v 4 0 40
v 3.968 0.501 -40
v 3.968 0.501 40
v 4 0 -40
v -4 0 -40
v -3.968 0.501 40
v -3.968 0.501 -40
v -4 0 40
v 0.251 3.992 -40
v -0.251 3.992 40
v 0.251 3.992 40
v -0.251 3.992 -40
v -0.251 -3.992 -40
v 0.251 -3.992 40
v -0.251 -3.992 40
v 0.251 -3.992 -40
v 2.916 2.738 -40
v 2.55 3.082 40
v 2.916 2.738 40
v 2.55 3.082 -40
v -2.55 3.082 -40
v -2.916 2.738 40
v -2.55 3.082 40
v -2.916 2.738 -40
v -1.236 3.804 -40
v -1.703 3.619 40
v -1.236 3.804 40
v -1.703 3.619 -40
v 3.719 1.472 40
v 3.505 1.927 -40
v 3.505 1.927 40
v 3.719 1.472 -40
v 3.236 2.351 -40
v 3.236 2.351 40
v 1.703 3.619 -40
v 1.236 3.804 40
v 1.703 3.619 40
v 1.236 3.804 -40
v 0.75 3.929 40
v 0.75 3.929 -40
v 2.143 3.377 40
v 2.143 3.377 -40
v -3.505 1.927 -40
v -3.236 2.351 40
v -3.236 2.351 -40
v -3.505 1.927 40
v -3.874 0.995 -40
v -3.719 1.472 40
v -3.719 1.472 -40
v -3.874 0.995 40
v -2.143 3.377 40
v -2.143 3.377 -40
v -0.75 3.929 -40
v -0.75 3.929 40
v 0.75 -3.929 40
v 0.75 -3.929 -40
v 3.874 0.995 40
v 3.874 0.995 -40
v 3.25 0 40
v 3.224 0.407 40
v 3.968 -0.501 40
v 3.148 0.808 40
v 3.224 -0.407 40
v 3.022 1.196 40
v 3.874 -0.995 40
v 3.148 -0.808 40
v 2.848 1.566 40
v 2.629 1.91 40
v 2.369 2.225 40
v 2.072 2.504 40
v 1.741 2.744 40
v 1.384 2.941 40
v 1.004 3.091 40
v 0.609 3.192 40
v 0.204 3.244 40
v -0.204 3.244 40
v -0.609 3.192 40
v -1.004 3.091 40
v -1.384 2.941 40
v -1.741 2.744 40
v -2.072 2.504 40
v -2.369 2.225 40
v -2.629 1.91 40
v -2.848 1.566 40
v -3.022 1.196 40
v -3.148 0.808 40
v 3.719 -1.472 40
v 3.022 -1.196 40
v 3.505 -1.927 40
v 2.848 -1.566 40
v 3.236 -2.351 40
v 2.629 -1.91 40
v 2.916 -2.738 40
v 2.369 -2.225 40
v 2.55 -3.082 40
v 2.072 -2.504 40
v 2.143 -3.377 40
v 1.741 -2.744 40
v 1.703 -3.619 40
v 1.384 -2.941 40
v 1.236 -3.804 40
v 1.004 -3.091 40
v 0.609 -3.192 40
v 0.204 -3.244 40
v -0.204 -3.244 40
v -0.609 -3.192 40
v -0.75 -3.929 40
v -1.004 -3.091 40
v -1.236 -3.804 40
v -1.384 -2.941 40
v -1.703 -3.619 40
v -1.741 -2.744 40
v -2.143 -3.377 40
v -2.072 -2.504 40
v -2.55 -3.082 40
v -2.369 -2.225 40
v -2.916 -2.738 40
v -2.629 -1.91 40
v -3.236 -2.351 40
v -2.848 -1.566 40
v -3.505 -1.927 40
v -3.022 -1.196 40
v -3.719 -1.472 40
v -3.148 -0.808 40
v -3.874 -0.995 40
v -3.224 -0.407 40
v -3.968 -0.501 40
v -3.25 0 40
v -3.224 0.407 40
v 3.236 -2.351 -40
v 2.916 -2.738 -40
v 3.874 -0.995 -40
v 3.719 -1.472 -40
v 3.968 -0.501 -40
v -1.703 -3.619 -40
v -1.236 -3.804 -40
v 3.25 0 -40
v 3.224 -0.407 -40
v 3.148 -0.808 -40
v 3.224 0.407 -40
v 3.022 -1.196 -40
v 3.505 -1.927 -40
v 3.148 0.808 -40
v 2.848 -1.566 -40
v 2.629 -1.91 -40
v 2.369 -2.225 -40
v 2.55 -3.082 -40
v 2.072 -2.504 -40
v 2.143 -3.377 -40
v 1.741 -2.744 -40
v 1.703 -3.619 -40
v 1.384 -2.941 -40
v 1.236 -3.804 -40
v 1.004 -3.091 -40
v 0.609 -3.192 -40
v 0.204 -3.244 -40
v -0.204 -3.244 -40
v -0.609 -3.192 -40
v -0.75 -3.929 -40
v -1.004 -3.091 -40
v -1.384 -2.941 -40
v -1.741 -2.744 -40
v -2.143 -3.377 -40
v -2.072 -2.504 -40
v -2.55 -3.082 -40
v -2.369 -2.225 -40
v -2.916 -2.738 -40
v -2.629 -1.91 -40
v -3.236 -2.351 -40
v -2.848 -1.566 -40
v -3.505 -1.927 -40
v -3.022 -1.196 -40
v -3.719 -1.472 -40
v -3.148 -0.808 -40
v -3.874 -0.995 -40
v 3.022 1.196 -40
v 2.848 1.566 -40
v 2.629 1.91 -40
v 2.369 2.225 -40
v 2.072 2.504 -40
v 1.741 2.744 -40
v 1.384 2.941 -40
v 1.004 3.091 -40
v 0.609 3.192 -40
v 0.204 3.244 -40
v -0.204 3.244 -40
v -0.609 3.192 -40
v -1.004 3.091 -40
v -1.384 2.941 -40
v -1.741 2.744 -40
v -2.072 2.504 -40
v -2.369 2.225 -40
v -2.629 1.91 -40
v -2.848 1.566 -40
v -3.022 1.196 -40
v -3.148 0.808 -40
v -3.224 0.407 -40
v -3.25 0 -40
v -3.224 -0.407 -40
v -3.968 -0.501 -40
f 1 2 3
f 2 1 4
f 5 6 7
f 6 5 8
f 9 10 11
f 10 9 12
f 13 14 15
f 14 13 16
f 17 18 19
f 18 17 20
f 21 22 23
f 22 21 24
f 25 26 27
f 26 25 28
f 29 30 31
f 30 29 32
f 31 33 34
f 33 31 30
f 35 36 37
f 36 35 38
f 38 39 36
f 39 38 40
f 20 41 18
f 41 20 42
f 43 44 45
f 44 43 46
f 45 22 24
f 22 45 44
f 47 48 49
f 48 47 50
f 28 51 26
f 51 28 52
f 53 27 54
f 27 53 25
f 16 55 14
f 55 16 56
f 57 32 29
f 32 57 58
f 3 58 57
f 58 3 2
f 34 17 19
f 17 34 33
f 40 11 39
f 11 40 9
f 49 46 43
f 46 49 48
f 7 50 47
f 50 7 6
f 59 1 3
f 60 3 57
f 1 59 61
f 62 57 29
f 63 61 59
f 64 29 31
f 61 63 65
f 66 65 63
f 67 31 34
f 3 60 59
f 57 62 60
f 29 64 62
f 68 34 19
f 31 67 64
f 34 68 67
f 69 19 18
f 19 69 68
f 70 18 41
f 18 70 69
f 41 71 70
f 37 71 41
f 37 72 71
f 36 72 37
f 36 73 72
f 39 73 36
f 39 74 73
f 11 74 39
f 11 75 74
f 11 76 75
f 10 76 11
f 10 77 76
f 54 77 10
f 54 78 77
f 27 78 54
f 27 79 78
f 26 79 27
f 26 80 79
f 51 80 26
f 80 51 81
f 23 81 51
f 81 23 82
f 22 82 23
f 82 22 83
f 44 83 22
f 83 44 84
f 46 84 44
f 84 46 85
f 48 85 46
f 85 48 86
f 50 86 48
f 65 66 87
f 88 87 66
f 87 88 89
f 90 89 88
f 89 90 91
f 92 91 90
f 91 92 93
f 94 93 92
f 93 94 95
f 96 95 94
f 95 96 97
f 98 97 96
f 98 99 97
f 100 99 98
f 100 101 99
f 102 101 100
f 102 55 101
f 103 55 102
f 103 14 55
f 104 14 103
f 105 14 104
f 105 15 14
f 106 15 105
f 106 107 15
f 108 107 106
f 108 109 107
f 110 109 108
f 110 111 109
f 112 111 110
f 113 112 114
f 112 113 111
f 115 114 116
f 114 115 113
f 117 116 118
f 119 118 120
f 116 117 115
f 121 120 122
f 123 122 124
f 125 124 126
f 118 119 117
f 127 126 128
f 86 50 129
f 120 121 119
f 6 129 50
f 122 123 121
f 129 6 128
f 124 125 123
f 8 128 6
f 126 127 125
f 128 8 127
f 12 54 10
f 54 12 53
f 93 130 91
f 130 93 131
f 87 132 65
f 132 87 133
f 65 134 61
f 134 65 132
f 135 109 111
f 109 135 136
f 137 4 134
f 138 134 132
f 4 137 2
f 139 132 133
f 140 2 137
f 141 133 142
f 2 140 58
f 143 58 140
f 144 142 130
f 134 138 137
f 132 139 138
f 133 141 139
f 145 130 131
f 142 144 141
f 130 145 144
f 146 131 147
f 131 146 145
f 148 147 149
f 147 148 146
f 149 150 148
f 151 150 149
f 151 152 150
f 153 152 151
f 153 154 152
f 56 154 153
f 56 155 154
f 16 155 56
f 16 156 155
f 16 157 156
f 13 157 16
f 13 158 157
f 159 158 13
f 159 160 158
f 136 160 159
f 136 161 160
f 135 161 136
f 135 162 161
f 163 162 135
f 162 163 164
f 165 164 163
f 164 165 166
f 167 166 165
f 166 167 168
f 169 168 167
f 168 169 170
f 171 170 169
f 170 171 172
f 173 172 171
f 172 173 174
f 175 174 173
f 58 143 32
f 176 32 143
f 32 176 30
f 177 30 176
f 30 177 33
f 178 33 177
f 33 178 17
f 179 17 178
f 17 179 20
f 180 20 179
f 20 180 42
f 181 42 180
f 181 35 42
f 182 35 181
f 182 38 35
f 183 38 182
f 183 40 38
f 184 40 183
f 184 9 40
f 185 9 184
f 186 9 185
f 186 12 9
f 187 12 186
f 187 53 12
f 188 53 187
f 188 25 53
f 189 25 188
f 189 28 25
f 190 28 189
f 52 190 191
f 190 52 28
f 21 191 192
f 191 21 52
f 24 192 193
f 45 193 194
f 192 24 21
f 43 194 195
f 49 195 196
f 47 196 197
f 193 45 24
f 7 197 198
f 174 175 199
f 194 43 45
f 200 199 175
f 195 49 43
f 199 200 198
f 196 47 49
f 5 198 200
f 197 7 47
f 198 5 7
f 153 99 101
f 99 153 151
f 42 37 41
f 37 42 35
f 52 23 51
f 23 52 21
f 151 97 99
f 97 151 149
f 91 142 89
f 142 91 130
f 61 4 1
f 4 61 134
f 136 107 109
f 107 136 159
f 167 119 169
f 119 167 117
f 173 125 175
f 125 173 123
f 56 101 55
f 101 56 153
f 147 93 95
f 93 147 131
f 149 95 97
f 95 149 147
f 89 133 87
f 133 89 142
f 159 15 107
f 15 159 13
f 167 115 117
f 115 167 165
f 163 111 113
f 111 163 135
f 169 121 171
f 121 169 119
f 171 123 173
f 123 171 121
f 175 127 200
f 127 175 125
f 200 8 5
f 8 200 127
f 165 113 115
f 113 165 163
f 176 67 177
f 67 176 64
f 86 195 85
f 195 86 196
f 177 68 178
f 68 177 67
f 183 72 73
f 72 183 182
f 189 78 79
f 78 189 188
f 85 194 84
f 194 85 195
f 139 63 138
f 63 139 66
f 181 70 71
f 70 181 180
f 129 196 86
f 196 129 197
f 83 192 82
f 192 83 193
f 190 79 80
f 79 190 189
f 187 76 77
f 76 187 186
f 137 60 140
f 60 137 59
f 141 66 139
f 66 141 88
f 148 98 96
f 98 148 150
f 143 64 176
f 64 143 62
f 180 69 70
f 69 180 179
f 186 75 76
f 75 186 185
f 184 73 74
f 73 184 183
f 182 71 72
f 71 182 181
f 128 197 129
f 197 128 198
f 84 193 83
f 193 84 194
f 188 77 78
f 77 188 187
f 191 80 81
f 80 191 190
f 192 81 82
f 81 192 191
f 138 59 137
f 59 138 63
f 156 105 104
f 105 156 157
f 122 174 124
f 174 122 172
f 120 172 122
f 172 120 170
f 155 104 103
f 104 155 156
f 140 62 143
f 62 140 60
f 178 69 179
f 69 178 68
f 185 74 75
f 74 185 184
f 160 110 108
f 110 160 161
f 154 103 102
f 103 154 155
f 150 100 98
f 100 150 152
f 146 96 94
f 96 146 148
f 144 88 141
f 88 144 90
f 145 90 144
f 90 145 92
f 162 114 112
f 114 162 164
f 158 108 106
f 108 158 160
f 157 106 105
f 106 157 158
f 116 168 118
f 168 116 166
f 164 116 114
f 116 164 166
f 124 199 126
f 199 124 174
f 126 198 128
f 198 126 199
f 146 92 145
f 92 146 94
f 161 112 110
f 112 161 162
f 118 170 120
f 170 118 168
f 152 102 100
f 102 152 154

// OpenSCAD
$fn = 50;


difference() {
	union() {
		translate(v = [0, 0, -40.0000000000]) {
			cylinder(h = 80, r = 4.0000000000);
		}
	}
	union() {
		translate(v = [0, 0, -100.0000000000]) {
			cylinder(h = 200, r = 3.2500000000);
		}
	}
}
